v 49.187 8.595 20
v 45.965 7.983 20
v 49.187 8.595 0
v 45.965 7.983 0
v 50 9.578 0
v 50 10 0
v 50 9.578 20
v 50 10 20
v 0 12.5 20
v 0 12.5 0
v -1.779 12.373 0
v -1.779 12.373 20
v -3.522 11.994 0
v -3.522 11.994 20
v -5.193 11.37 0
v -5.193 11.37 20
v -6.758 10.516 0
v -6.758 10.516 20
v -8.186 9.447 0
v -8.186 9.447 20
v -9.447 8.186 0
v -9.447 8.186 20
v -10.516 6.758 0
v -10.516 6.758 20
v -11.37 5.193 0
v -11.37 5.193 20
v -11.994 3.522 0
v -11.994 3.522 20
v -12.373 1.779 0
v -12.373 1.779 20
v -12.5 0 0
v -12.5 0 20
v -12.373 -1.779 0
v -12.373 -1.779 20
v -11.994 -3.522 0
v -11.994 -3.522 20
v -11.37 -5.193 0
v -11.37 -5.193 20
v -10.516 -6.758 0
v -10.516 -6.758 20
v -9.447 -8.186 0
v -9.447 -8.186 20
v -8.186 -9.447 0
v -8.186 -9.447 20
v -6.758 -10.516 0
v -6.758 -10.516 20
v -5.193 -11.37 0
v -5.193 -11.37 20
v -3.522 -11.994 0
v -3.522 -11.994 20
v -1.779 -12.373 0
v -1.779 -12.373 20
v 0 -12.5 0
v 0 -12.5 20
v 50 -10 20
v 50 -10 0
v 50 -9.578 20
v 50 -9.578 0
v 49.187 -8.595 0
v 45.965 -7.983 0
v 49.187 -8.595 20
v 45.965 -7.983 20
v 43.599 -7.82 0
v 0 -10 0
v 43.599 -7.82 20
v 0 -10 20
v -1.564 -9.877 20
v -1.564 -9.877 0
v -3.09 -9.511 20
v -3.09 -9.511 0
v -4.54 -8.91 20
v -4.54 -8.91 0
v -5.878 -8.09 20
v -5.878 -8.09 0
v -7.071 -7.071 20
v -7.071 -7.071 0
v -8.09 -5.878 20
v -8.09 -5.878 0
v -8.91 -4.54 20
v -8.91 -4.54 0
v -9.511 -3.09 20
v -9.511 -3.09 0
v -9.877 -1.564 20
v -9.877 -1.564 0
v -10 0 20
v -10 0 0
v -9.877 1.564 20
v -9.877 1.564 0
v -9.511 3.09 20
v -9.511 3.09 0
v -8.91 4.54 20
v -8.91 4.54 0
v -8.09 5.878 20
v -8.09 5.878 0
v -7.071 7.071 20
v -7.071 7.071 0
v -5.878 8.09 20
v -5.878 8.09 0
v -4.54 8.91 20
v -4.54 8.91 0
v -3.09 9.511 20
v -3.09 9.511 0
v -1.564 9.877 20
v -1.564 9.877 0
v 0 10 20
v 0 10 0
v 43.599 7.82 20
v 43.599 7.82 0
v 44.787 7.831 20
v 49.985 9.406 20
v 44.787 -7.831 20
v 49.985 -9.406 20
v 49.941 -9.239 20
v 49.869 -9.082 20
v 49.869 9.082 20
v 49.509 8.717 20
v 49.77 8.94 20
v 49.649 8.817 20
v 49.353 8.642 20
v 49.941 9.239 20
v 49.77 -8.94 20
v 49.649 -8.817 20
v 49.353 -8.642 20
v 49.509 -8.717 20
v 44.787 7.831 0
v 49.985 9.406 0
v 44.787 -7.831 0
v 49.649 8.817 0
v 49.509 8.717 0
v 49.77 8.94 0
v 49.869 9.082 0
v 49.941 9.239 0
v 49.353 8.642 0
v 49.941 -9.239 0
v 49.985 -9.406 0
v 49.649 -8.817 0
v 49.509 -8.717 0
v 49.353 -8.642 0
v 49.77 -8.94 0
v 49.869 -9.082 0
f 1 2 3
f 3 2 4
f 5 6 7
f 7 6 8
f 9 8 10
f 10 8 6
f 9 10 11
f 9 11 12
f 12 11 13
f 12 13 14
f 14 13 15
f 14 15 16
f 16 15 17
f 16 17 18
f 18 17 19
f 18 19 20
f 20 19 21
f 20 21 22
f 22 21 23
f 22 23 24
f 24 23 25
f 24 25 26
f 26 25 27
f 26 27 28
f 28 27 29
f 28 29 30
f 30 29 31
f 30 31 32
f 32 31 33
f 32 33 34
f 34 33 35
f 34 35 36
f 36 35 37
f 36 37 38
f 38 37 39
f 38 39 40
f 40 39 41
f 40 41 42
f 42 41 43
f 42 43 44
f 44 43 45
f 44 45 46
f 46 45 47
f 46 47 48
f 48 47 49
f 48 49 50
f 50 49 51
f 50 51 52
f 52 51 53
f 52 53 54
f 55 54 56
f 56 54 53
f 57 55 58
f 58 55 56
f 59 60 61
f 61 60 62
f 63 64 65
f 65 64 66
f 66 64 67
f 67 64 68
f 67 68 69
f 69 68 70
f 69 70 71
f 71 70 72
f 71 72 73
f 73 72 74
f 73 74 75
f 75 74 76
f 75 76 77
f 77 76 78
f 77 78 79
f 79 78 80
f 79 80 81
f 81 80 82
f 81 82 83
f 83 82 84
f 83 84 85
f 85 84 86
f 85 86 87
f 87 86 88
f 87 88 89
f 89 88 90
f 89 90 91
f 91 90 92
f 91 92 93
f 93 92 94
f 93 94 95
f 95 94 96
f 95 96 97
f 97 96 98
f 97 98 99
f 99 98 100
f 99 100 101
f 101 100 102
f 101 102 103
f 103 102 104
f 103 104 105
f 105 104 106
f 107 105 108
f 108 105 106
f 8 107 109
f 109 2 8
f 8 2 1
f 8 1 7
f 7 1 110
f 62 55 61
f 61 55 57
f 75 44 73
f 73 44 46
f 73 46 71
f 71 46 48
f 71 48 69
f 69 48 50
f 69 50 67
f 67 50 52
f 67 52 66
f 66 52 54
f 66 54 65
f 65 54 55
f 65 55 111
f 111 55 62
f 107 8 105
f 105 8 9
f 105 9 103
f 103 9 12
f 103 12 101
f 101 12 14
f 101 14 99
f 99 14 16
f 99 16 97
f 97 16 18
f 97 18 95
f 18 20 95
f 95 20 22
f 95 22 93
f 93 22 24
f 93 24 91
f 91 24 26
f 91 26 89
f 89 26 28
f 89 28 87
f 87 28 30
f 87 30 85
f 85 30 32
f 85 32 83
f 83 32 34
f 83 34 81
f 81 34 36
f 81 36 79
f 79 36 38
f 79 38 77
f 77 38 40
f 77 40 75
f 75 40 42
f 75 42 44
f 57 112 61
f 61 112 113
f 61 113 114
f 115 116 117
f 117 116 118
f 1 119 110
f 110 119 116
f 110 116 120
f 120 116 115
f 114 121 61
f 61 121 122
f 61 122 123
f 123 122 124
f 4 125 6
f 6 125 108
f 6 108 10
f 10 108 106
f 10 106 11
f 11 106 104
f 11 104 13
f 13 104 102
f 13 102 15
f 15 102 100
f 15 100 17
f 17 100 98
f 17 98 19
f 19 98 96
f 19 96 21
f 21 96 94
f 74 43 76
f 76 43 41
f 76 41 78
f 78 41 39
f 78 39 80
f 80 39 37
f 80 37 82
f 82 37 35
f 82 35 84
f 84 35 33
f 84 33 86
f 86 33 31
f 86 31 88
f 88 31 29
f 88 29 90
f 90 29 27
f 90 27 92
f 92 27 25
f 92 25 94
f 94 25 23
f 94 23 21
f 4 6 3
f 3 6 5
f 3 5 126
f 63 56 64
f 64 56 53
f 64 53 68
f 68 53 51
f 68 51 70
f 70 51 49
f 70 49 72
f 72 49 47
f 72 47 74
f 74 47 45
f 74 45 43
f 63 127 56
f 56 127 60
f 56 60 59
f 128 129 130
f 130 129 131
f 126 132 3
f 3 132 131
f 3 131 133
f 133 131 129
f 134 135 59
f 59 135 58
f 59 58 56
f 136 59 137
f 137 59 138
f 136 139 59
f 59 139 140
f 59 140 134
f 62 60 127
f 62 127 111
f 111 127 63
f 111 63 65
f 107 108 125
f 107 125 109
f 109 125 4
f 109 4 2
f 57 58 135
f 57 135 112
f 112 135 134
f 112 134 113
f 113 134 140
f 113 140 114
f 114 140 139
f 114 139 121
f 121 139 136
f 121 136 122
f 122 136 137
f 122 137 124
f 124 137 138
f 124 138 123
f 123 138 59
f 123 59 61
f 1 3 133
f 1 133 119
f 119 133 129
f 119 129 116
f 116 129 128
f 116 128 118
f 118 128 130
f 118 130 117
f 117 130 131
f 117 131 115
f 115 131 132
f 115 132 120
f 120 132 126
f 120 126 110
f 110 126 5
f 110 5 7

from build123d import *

# Parameters (mm, degrees)
BOSS_EXTRUDE1_DEPTH = 20
FILLET1_R           = 10
FILLET2_R           = 1


with BuildPart() as part:
    # Sketch1 → Boss-Extrude1 (new body)
    with BuildSketch(Plane.XY):
        with BuildLine():
            Line((50, 10), (50, 8.75))
            Line((50, 8.75), (44.792027113, 7.760398644))
            Line((44.792027113, 7.760398644), (0, 10))
            ThreePointArc((0, 10), (-10, 0), (0, -10))
            Line((0, -10), (44.792027113, -7.760398644))
            Line((44.792027113, -7.760398644), (50, -8.75))
            Line((50, -8.75), (50, -10))
            Line((50, -10), (0, -12.5))
            ThreePointArc((0, -12.5), (-12.5, 0), (0, 12.5))
            Line((0, 12.5), (50, 10))
        make_face()
    extrude(amount=BOSS_EXTRUDE1_DEPTH)

    # Fillet1
    fillet1_edges = [part.edges().sort_by_distance(p)[0] for p in [
        (44.792027113, 7.760398644, 10),
        (44.792027113, -7.760398644, 10),
    ]]
    fillet(fillet1_edges, radius=FILLET1_R)

    # Fillet2
    fillet2_edges = [part.edges().sort_by_distance(p)[0] for p in [
        (50, -8.75, 10),
        (50, 8.75, 10),
    ]]
    fillet(fillet2_edges, radius=FILLET2_R)


solid = part.part
